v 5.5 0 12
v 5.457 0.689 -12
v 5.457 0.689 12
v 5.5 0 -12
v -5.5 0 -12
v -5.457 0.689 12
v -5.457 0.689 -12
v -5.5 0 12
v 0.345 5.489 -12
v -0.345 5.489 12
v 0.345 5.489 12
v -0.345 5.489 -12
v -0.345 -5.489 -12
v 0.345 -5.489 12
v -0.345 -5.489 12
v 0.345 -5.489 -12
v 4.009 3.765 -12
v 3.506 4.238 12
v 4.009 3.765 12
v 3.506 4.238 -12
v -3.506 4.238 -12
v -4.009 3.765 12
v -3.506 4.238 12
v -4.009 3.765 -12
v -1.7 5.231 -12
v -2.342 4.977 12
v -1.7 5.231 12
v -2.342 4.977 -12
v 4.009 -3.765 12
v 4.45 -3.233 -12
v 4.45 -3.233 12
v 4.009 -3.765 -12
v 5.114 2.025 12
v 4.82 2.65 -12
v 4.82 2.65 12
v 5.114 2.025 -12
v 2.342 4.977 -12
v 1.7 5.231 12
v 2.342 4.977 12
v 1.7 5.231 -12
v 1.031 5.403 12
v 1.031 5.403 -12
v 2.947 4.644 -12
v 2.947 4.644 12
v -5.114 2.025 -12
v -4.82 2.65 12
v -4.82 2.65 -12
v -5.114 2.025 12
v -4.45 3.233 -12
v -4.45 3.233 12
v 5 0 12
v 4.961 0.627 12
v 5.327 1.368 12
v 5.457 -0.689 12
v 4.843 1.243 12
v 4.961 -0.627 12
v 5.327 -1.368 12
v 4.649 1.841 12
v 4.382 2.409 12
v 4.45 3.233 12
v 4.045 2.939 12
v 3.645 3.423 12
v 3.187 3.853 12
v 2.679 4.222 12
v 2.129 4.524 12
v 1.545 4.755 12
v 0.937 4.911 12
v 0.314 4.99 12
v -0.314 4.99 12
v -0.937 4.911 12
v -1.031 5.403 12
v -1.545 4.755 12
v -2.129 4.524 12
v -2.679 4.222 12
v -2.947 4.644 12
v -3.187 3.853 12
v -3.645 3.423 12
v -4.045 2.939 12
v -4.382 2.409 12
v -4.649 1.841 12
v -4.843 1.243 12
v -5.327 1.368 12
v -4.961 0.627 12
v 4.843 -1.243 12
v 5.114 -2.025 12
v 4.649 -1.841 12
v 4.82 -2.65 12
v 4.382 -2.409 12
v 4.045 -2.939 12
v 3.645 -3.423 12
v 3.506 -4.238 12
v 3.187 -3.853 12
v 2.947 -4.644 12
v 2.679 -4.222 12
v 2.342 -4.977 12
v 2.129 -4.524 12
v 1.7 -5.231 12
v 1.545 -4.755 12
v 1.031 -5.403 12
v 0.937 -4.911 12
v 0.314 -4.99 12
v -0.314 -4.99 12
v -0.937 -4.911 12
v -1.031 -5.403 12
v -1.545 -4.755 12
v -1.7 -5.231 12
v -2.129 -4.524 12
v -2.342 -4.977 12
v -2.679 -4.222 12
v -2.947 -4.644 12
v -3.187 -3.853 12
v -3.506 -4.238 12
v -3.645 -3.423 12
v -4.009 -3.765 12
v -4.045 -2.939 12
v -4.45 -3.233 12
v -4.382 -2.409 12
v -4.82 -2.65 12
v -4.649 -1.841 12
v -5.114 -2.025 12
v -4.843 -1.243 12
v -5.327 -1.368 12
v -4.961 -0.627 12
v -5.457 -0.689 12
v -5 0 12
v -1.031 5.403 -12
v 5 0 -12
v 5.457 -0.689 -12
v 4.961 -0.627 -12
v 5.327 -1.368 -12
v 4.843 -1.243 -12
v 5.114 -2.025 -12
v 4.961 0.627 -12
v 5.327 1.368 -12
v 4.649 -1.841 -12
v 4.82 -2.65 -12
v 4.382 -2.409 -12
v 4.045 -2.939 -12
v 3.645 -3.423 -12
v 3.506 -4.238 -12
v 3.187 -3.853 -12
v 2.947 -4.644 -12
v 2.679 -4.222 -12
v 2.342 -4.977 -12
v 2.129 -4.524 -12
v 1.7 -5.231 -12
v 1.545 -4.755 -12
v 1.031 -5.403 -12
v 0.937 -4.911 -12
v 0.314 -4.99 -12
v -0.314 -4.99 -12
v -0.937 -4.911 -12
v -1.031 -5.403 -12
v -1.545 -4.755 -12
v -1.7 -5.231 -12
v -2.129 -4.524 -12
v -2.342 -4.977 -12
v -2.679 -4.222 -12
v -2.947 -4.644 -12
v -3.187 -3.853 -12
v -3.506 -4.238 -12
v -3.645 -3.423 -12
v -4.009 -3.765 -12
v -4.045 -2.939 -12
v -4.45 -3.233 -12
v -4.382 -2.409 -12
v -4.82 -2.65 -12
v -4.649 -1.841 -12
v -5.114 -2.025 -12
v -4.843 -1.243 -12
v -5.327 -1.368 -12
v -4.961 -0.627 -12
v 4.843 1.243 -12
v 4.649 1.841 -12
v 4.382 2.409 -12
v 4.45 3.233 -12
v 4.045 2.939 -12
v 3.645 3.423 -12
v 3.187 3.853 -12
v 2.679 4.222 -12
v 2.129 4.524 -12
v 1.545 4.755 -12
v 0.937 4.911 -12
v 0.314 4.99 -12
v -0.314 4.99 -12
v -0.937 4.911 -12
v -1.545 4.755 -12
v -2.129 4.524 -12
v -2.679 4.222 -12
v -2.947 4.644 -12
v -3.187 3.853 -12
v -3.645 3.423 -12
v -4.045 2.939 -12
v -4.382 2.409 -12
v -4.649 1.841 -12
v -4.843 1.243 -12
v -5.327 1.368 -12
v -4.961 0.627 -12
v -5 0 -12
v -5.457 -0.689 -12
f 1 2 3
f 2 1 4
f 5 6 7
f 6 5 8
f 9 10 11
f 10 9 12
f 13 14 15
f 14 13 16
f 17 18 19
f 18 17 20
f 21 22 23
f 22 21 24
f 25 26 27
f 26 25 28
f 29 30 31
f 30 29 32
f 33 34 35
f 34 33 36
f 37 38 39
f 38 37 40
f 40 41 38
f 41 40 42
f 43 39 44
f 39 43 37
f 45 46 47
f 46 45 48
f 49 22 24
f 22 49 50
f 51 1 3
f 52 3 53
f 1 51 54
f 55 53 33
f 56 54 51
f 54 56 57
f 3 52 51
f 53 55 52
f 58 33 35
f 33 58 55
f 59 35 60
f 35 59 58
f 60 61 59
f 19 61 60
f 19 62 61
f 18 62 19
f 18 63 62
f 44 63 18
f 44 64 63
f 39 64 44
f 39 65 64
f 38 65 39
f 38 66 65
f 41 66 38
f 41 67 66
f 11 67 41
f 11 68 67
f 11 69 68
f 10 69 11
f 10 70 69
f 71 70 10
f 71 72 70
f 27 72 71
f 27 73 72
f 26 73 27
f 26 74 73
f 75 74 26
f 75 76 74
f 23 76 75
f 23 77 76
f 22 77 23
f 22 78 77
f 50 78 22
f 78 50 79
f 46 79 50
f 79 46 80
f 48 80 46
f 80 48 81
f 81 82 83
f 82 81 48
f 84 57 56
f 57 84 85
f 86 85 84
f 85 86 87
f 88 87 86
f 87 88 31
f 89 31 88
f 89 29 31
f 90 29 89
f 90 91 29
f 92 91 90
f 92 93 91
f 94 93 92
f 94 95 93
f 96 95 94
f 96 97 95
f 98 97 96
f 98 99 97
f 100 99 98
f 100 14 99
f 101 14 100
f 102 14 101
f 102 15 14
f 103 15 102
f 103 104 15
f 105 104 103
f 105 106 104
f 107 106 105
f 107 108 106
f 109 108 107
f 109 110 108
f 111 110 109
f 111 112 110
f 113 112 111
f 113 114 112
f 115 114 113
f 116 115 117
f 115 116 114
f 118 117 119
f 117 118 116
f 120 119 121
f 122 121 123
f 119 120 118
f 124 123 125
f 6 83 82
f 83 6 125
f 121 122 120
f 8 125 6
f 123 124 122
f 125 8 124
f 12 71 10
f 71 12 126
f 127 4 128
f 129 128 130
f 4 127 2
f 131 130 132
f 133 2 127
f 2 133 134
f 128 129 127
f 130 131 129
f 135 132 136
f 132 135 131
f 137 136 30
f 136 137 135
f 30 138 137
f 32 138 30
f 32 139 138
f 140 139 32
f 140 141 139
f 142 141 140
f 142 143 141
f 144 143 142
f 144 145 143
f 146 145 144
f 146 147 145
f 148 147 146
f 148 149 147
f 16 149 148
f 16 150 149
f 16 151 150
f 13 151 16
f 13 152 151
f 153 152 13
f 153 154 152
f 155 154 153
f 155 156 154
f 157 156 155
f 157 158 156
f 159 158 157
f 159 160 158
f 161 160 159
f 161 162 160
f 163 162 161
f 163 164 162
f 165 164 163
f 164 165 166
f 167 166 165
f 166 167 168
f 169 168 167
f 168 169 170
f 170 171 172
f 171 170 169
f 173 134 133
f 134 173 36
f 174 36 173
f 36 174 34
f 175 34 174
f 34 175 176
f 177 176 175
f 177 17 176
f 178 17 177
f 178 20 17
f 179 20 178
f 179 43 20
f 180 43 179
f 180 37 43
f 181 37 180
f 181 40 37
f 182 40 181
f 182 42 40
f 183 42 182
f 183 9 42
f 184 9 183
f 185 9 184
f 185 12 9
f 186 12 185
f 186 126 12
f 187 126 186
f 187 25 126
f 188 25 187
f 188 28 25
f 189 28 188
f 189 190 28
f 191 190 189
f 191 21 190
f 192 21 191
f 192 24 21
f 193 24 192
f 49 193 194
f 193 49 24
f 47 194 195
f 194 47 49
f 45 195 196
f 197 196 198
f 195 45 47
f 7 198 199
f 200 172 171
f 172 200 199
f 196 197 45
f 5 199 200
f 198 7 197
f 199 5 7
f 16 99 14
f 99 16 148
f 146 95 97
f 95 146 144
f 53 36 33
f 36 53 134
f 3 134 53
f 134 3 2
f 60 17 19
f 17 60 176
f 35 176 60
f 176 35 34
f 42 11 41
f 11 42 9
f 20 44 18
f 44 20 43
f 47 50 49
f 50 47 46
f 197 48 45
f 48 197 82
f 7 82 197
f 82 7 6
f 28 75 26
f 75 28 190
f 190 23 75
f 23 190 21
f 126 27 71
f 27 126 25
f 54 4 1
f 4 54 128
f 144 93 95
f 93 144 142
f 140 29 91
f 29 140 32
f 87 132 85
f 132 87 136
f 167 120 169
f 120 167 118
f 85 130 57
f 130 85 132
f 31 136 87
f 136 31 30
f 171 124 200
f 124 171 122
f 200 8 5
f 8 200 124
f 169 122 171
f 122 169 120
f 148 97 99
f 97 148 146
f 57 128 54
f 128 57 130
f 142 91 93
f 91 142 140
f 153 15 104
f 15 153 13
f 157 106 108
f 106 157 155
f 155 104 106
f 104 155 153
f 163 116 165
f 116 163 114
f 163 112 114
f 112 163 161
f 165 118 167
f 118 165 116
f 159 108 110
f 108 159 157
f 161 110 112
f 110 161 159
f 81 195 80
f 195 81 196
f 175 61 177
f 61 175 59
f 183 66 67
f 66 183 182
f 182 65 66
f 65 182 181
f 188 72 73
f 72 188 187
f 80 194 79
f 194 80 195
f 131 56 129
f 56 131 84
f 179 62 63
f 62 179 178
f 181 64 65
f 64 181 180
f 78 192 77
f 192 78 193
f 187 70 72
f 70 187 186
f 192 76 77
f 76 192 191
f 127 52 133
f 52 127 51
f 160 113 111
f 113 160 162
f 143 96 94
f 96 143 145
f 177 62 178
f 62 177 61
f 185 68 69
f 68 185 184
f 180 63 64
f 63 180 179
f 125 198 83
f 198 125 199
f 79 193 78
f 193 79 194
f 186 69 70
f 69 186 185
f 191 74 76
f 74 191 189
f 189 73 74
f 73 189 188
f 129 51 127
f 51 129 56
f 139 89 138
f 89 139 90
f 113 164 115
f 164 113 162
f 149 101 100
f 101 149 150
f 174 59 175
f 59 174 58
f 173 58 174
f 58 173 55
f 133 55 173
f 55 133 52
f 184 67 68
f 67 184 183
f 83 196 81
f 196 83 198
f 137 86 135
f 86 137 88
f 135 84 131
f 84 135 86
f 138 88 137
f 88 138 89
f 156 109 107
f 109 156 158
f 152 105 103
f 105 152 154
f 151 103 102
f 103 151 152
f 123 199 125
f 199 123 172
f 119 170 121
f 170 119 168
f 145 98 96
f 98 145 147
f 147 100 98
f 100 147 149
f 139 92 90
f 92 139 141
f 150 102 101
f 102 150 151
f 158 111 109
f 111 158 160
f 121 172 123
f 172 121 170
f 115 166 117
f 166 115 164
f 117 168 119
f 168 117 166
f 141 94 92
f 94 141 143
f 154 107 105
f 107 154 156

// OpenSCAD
$fn = 50;


difference() {
	union() {
		translate(v = [0, 0, -12.0000000000]) {
			cylinder(h = 24, r = 5.5000000000);
		}
	}
	union() {
		translate(v = [0, 0, -100.0000000000]) {
			cylinder(h = 200, r = 5);
		}
	}
}
